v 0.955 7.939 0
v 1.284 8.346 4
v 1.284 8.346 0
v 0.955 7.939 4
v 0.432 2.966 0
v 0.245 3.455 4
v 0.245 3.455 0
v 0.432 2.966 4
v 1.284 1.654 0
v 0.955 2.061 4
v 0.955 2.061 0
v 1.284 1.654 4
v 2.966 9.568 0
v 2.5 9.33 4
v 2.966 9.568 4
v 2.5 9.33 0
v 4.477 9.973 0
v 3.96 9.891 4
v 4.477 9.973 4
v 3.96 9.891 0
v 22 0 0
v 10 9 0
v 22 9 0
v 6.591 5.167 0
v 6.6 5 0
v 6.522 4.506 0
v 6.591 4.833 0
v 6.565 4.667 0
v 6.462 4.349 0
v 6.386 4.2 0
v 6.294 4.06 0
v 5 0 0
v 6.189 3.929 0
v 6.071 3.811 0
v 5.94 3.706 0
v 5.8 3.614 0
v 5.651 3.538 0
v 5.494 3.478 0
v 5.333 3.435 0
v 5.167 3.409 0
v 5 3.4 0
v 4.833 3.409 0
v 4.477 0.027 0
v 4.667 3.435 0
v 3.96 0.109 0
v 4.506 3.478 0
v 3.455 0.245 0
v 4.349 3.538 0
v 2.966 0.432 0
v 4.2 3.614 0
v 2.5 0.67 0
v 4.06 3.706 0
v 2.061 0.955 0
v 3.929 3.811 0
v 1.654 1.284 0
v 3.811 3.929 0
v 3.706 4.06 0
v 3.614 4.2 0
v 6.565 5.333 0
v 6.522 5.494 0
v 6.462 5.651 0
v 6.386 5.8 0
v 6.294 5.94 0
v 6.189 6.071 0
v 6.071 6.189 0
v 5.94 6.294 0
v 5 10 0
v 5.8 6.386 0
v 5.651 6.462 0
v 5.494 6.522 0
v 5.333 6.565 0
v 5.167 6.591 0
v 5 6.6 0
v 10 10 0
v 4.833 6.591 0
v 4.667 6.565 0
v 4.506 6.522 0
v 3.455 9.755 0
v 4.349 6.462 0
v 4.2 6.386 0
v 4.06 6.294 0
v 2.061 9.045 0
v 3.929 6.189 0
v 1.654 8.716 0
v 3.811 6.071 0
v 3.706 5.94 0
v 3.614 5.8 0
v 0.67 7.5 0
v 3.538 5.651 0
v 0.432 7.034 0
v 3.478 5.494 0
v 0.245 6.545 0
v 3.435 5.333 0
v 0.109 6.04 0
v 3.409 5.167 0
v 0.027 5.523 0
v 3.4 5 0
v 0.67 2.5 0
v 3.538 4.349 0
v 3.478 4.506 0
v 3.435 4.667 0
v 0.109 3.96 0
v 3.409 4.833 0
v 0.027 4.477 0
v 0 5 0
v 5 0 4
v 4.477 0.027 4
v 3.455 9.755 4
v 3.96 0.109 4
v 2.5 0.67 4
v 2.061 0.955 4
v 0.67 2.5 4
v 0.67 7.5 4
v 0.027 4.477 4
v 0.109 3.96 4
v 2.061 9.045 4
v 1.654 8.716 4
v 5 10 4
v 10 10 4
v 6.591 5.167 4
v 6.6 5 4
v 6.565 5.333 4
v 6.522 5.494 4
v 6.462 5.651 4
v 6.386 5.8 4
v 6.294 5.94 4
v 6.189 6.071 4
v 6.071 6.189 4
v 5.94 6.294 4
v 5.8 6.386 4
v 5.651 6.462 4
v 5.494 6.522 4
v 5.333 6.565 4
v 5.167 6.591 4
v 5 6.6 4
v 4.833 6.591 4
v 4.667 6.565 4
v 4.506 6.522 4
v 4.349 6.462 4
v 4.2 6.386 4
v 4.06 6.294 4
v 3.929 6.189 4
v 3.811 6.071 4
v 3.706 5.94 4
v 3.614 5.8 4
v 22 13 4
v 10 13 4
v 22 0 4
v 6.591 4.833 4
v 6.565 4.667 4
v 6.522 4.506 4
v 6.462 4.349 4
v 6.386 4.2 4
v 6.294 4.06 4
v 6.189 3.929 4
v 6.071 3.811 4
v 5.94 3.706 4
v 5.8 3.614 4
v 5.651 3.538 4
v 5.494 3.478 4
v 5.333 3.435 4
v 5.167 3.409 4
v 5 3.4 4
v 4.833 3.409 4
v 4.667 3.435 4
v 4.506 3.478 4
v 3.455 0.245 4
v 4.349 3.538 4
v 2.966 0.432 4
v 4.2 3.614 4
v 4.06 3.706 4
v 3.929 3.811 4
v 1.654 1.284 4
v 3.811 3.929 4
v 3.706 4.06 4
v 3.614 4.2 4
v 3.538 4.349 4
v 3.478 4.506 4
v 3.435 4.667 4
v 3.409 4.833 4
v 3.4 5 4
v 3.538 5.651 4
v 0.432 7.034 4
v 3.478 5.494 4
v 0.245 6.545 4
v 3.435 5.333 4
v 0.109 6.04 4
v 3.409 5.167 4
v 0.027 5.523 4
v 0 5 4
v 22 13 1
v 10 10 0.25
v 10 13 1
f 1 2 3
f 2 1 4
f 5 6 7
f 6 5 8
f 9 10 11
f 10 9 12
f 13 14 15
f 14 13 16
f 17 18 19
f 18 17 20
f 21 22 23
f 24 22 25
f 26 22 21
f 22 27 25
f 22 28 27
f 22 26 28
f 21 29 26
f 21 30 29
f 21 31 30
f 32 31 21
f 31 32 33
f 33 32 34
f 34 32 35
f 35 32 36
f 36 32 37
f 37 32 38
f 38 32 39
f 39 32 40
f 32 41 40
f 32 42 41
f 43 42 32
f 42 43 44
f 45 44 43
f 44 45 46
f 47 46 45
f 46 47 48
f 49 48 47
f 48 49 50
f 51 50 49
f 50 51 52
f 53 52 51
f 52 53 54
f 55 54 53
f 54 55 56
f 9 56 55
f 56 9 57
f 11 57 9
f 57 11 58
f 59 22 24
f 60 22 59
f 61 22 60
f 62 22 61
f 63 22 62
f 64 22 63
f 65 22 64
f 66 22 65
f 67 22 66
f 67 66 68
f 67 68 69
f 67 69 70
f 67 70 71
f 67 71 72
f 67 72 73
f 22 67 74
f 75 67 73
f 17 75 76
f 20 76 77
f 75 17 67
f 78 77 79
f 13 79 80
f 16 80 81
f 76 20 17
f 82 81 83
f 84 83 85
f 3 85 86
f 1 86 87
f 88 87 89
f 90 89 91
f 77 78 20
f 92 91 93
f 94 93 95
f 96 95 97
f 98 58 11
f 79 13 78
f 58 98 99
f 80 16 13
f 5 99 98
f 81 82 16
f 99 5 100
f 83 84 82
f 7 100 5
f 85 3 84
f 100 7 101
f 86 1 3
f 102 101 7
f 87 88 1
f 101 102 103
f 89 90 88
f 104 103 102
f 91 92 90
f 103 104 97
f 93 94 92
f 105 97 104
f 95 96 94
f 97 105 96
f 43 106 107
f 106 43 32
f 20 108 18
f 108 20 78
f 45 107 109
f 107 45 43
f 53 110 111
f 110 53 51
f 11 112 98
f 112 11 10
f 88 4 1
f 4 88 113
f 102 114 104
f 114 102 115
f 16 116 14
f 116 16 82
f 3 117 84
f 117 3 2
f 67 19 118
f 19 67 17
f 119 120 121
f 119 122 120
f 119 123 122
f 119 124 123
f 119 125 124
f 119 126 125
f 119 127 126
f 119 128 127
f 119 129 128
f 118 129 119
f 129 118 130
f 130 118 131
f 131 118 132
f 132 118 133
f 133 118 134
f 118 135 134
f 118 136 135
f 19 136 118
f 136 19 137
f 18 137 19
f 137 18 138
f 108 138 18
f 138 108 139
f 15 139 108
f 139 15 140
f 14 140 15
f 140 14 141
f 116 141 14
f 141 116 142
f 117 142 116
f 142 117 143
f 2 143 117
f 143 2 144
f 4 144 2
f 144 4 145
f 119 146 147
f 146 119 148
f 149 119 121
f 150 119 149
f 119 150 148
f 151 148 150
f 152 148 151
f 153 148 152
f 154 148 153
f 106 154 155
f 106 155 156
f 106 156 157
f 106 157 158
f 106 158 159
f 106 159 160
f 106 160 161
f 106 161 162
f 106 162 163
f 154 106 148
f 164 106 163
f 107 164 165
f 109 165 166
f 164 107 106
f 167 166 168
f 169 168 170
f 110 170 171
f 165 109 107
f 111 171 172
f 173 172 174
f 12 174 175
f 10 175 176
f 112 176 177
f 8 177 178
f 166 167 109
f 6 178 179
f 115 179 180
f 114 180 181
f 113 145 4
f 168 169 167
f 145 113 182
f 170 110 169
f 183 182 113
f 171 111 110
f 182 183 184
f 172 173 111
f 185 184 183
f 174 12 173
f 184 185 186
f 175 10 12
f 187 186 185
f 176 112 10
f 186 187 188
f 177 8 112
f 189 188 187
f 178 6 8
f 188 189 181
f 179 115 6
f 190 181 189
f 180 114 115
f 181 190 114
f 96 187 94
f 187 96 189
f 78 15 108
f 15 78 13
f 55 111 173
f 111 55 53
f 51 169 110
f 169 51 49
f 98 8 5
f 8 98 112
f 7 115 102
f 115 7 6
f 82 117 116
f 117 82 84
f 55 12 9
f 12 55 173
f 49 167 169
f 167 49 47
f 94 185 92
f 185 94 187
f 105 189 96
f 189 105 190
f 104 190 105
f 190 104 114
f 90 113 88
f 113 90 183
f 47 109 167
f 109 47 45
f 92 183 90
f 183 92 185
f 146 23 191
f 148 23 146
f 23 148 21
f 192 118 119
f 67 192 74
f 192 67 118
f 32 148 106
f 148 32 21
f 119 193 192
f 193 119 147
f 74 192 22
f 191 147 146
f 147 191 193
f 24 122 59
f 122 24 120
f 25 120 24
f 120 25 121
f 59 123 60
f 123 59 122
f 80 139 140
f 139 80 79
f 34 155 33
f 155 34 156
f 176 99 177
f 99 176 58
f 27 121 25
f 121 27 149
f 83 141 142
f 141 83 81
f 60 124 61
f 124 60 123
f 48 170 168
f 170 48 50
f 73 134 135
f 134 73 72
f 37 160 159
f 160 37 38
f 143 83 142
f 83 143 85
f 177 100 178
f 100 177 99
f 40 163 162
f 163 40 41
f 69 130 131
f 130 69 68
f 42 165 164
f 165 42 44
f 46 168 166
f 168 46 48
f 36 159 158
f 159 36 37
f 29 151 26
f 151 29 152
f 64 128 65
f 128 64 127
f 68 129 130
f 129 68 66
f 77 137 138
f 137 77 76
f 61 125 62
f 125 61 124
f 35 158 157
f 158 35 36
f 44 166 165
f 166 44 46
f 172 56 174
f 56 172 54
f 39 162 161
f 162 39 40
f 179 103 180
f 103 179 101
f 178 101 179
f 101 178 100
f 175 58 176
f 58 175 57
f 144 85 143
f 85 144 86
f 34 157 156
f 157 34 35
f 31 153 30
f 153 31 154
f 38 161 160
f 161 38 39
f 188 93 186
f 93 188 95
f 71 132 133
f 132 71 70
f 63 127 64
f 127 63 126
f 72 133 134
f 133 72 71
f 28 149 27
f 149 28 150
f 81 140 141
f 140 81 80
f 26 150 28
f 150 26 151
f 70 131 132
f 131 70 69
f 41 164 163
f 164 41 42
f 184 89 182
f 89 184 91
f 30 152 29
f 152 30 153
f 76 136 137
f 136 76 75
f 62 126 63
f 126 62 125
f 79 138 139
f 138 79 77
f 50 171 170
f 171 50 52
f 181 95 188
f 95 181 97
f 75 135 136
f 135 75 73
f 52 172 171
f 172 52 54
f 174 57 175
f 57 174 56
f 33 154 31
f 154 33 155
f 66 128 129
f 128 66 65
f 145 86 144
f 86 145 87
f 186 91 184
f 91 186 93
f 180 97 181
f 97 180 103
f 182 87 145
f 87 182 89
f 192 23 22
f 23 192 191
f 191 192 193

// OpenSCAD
// file: modules.scad
/*
This is a collection of the modules which are used heavily within the whole project.
Almost all parts rely on the modules to remain "as is", especially regarding their current orientation.
So please act very carefully here, otherwise you may screw up the complete design!

*/

// roof module - this is heavily used for dovetail cutouts
// please keep as is
module roof(l, w, h){
    polyhedron(
        points=[
            [0,0,0],
            [l,0,0],
            [l,w,0],
            [0,w,0],
            [0,w/2,h],
            [l,w/2,h]
            ],
        faces=[
            [0,1,2,3],
            [0,4,1],
            [1,4,5,2],
            [2,5,3],
            [3,5,4,0]
            ]
            );
    };

// a wedge module - this is heavily used for cutting edges
// please keep as is    
module wedge(l, w, h) {
    polyhedron(
            points=[
                [0,0,0],
                [l,0,0],
                [l,w,0],
                [0,w,0],
                [0,0,h],
                [l,0,h]
            ],
            faces=[
                [0,3,2,1],
                [0,1,5,4],
                [1,2,5],
                [2,3,4,5],
                [3,0,4]
            ]
    );
   };

// simple tube module.   
module tube(d1, d2, h) {
    difference() {
        cylinder(d=d1, h=h);
        cylinder(d=d2, h=h);
        };
    };

// mainly used for making holes for countersunk screws
// please keep as is    
module countersunk_screw(vScrew_d, vScrew_l){
    union(){
    cylinder(d=vScrew_d, h= vScrew_l);
    cylinder(d1=vScrew_d*2, h=vScrew_d);
    };
};

// module for making hexagons, e.g. hex nuts. kw is the key width
// please keep as is
module hex(kw, h) {
	render()
        translate([0, 0, h/2])
            intersection_for(a = [0, 120, 240]) {
                rotate([0, 0, a])
                    cube([kw, 3 * kw, h], true);
                }
}
// main file
// some variables
$fn = 60; // we are using 60 fragments for cylinders and similar objects

// some modules such as hex, countersunk screws, roof, wedge are available in a module file
use <modules.scad>;


// variables

vTolerance = 0.2;


vLockingLeverRadius_r = 5;


vLockingLeverRadius_offsetX = vLockingLeverRadius_r;
vLockingLeverRadius_offsetY = vLockingLeverRadius_r;
vLockingLeverRadius_offsetZ = 0;

vLockingLever_l = vLockingLeverRadius_r+12;
vLockingLever_w = 2*vLockingLeverRadius_r;
vLockingLever_h = 4;
vLockingLever_offsetX = vLockingLeverRadius_r;
vLockingLever_offsetY = 0;
vLockingLever_offsetZ = 0;

vLockingLeverExtension_l = 12;
vLockingLeverExtension_w = 8;
vLockingLeverExtension_h = vLockingLever_h;
vLockingLeverExtension_offsetX = 2*vLockingLeverRadius_r;
vLockingLeverExtension_offsetY = vLockingLeverRadius_r;
vLockingLeverExtension_offsetZ = 0;


vLockingLeverRampCutoff_l = -vLockingLeverExtension_w/2;
vLockingLeverRampCutoff_w = vLockingLeverExtension_l;
vLockingLeverRampCutoff_h = 1;
vLockingLeverRampCutoff_offsetX = vLockingLeverExtension_offsetX;
vLockingLeverRampCutoff_offsetY = vLockingLeverRadius_r+vLockingLeverExtension_w;
vLockingLeverRampCutoff_offsetZ = 0;

vScrewHole_d = 3+vTolerance;
vScrewHole_h = vLockingLever_h;

difference(){
union(){
    translate([vLockingLeverRadius_offsetX, vLockingLeverRadius_offsetY, vLockingLeverRadius_offsetZ])
        cylinder(r=vLockingLeverRadius_r, h=vLockingLever_h);
    translate([vLockingLever_offsetX, vLockingLever_offsetY, vLockingLever_offsetZ])
        cube([vLockingLever_l, vLockingLever_w, vLockingLever_h]);
    translate([vLockingLeverExtension_offsetX, vLockingLeverExtension_offsetY, vLockingLeverExtension_offsetZ])
        cube([vLockingLeverExtension_l, vLockingLeverExtension_w, vLockingLeverExtension_h]);
    };    
translate([vLockingLeverRadius_offsetX, vLockingLeverRadius_offsetY, vLockingLeverRadius_offsetZ])
        cylinder(d=vScrewHole_d, h=vScrewHole_h);
    translate([vLockingLeverRampCutoff_offsetX, vLockingLeverRampCutoff_offsetY, vLockingLeverRampCutoff_offsetZ])
        wedge(vLockingLeverRampCutoff_w, vLockingLeverRampCutoff_l, vLockingLeverRampCutoff_h);
};
